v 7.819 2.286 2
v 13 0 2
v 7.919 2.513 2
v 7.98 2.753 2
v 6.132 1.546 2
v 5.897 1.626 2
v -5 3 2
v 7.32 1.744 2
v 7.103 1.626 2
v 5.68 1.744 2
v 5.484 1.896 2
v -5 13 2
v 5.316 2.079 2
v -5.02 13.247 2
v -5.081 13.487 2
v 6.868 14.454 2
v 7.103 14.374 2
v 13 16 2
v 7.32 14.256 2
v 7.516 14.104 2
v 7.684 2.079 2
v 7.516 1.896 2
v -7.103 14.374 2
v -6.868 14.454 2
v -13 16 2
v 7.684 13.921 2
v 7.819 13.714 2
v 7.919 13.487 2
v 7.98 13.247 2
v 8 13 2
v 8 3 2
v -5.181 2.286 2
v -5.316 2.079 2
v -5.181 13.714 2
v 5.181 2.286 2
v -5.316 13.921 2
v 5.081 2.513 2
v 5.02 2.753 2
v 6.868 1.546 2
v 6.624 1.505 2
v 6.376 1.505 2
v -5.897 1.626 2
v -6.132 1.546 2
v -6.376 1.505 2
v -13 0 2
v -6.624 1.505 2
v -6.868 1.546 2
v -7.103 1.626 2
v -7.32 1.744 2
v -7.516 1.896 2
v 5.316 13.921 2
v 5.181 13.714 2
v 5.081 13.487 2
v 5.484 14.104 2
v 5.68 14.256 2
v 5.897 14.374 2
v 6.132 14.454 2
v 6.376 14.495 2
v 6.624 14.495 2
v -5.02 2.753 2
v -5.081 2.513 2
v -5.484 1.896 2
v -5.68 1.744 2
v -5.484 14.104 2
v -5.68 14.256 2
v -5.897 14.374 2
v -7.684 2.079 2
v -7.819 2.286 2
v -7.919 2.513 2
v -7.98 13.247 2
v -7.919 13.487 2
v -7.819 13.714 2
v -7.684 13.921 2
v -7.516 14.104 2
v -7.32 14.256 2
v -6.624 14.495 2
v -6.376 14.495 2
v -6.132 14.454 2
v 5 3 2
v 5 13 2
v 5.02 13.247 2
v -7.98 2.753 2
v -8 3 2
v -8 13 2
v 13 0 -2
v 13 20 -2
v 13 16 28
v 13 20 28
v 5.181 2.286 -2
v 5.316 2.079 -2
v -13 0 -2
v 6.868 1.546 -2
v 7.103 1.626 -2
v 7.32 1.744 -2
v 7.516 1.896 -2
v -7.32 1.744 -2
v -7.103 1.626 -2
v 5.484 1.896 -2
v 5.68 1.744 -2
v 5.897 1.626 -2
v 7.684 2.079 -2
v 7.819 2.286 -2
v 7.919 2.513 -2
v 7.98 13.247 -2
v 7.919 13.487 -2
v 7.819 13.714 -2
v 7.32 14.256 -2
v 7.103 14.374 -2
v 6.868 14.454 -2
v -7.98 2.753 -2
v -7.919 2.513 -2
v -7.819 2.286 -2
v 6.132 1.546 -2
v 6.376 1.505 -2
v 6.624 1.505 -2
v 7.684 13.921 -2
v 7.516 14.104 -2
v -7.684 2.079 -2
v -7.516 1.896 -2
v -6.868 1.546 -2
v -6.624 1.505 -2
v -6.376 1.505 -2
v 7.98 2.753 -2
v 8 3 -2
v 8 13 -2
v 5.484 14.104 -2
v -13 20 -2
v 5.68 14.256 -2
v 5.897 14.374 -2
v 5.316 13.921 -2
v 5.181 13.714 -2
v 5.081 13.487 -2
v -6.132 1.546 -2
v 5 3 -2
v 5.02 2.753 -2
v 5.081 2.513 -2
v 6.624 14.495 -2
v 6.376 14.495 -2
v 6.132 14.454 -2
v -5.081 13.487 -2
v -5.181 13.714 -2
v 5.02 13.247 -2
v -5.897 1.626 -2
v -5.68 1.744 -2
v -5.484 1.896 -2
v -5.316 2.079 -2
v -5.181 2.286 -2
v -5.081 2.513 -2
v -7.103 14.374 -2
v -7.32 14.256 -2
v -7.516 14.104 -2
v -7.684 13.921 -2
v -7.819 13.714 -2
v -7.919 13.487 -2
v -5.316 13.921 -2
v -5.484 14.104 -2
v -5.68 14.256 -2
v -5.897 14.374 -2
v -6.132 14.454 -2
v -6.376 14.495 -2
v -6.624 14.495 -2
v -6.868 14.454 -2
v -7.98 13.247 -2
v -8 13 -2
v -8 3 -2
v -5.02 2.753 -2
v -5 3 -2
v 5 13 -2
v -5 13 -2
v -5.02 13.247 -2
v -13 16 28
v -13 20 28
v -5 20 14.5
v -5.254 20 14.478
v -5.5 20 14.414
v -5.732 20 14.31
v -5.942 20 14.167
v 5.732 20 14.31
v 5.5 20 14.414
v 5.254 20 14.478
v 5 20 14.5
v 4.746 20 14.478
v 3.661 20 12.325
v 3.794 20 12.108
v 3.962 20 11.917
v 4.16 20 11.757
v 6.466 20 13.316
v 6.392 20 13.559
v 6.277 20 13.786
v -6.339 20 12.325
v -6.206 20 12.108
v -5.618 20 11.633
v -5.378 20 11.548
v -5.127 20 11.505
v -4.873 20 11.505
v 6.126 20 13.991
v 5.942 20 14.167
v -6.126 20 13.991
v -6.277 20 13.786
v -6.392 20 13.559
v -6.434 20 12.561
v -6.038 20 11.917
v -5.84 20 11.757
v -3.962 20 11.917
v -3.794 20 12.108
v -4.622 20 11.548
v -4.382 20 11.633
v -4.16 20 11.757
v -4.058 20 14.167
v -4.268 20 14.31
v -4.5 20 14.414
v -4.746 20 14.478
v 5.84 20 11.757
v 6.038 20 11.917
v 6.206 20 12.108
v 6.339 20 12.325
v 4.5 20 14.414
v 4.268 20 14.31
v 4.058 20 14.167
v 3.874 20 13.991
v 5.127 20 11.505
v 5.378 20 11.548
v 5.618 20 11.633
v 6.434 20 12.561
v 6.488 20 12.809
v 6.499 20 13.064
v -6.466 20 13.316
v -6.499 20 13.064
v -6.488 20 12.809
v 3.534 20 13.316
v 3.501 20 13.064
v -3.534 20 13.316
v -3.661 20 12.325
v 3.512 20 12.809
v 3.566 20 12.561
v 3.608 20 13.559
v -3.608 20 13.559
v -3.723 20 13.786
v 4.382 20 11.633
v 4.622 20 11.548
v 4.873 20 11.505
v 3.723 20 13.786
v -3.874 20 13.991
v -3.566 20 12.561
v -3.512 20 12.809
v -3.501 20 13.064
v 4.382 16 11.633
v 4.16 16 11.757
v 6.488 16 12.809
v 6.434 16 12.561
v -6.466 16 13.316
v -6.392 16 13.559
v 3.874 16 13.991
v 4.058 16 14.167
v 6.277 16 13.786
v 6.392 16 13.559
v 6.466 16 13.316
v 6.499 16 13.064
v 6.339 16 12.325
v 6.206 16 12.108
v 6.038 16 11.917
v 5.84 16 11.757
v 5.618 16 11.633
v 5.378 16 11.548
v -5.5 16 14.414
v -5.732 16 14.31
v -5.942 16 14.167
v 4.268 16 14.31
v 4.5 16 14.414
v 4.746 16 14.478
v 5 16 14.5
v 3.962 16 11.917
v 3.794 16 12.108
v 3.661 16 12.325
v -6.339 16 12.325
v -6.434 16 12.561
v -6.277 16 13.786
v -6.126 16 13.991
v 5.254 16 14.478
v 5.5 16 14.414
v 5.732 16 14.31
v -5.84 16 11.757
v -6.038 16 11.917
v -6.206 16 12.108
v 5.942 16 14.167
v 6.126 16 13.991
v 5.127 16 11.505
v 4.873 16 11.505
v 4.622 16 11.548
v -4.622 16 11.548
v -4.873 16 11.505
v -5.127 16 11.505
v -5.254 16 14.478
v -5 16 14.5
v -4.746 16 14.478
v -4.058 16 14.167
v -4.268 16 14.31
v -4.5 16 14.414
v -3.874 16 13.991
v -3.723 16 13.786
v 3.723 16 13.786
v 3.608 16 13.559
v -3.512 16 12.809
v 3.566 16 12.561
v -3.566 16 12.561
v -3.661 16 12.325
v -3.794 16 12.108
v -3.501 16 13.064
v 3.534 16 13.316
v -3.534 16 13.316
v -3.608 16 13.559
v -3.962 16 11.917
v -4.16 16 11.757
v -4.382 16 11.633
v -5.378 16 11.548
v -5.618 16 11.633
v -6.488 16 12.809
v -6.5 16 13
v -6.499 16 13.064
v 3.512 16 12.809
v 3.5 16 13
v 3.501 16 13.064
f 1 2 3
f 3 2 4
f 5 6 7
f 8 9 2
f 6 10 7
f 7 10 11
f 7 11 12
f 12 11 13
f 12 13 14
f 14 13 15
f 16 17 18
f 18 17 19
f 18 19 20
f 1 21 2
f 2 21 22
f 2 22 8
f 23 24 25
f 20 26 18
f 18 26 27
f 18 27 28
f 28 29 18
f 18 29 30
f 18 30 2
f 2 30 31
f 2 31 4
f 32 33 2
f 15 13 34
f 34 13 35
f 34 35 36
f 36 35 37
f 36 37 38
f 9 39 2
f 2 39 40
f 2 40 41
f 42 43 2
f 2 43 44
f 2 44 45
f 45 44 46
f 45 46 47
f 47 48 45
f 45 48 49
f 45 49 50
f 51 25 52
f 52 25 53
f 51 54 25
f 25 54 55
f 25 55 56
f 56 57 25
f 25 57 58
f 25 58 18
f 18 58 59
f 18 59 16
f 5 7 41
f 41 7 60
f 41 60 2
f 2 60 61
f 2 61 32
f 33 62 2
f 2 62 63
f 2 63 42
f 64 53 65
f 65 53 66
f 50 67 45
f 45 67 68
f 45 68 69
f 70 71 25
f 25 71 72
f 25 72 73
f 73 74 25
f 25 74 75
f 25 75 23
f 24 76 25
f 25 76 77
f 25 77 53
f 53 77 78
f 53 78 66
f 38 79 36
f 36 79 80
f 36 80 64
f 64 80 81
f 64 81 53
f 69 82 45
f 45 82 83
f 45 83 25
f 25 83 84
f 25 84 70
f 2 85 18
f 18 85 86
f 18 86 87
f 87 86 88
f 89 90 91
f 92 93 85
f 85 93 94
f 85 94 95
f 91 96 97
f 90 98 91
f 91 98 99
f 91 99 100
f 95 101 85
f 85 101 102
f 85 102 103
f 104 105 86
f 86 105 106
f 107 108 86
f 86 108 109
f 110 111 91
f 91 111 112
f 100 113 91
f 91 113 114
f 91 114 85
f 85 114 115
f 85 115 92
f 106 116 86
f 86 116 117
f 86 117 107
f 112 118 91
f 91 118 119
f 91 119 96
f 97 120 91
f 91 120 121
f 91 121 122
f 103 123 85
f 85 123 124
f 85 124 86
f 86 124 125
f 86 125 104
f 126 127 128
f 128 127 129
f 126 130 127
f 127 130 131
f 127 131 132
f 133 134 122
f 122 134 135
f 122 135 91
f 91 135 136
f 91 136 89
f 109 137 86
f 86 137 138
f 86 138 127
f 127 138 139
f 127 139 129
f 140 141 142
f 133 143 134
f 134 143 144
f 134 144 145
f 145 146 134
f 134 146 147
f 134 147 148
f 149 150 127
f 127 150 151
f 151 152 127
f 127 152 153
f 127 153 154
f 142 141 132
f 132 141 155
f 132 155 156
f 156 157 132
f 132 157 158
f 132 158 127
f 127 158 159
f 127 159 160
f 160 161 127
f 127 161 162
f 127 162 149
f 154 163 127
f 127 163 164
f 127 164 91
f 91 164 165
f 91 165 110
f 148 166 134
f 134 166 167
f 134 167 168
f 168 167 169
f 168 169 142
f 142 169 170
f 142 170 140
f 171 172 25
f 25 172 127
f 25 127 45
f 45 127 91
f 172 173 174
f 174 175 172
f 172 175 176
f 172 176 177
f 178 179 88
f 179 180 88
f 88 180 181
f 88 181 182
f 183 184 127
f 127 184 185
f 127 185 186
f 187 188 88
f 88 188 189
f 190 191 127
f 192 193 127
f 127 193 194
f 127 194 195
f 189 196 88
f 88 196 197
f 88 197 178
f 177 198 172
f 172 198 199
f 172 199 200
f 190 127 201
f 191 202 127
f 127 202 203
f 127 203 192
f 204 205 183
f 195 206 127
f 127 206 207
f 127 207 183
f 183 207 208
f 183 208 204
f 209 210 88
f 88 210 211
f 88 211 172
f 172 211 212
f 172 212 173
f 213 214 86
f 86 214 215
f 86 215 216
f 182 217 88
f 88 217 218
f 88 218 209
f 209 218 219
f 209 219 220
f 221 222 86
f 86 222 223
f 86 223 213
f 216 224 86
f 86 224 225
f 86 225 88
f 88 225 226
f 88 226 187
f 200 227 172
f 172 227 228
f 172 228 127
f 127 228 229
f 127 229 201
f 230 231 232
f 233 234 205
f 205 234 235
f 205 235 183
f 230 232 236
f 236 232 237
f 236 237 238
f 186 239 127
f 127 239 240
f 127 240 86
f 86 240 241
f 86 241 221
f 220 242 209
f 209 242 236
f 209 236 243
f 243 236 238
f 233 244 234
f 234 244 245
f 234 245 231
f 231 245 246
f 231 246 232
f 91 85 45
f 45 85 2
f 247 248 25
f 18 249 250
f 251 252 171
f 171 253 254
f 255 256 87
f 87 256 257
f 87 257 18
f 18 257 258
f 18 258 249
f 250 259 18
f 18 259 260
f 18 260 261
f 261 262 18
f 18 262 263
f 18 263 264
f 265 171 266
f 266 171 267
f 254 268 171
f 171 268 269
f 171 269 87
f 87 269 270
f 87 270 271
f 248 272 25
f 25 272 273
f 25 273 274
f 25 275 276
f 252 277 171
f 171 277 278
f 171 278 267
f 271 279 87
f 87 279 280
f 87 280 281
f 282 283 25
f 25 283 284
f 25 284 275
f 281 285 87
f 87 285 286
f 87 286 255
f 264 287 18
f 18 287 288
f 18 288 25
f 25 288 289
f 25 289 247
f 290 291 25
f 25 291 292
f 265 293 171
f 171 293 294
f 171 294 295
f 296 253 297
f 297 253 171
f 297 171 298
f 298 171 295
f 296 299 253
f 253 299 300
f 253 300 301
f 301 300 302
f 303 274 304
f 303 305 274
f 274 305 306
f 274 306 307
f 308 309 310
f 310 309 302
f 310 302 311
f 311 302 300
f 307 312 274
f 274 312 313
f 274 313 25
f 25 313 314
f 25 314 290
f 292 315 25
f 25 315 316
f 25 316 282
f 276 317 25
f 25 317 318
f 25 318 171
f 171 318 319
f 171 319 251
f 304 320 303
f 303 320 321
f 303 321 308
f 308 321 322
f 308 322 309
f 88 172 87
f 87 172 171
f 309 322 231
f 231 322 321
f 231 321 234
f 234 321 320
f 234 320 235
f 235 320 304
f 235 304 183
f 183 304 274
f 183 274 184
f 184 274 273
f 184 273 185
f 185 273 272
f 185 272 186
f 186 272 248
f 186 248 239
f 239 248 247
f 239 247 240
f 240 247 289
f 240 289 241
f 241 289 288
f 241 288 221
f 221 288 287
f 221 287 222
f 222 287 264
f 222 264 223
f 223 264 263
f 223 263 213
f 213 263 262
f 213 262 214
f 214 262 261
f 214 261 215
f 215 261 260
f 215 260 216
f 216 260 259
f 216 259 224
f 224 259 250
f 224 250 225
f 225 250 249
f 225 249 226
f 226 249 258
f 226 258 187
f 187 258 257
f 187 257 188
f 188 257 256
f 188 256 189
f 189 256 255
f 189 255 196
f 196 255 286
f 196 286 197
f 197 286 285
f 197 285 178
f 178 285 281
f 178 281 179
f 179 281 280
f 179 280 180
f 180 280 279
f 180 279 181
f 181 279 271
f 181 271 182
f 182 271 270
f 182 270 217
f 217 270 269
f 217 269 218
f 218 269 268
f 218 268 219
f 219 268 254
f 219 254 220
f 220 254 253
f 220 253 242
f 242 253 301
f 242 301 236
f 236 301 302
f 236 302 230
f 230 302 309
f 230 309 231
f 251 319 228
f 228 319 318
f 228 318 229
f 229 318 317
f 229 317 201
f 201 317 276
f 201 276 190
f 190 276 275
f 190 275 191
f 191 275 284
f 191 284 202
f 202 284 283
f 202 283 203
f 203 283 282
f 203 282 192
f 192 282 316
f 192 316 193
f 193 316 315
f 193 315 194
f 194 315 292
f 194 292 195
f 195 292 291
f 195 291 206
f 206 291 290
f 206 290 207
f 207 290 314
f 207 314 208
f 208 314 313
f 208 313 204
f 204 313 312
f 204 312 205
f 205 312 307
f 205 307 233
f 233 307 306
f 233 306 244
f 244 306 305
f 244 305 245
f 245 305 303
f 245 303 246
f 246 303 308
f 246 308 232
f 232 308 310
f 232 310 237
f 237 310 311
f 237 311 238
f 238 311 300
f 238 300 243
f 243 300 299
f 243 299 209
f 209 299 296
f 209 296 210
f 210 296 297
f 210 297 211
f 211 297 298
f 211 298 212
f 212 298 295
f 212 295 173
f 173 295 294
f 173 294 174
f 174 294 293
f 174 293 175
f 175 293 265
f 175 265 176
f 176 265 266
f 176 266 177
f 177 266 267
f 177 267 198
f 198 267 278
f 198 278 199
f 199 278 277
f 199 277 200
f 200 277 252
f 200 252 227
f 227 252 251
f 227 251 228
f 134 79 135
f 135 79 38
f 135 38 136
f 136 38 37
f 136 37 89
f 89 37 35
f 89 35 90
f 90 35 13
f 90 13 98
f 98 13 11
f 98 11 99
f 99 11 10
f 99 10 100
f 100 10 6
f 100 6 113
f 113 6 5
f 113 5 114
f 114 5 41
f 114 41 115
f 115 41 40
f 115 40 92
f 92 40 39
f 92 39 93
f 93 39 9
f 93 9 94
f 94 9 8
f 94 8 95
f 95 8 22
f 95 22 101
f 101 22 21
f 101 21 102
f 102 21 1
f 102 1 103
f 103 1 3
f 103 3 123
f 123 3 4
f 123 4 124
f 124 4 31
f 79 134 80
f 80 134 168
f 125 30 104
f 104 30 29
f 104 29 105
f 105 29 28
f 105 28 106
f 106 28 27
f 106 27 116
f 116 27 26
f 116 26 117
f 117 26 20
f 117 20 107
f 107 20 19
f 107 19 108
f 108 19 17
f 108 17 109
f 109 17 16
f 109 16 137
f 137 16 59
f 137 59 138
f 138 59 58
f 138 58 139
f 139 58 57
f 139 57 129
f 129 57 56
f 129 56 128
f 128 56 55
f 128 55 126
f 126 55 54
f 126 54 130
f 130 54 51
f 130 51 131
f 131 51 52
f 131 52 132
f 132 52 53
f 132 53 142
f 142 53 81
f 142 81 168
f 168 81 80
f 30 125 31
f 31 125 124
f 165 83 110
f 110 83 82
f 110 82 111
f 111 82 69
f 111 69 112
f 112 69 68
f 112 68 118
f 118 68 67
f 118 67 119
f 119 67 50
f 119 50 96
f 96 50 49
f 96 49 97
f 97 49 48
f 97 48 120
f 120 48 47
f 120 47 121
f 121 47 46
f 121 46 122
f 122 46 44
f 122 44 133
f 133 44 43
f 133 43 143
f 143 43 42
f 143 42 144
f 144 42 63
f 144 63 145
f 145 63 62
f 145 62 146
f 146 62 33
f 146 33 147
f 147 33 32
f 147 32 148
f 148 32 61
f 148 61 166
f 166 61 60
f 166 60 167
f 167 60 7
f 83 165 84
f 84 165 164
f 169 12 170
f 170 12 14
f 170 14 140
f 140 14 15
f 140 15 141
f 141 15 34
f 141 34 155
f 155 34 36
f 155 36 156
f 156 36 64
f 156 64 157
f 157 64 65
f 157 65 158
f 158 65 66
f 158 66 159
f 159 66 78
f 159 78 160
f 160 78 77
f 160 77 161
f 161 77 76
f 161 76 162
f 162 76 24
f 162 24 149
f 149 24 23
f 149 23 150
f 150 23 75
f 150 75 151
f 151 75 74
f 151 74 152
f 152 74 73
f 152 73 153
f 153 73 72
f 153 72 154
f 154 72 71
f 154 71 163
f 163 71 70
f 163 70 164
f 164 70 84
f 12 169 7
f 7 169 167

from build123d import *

# Parameters (mm, degrees)
CROQUIS1_W              = 26
CROQUIS1_H              = 4
SALIENTE_EXTRUIR1_DEPTH = 20
CROQUIS2_W              = 26
CROQUIS2_H              = 4
SALIENTE_EXTRUIR2_DEPTH = 26
CROQUIS3_R              = 1.5
CORTAR_EXTRUIR1_DEPTH   = 25
CORTAR_EXTRUIR2_DEPTH   = 25


with BuildPart() as part:
    # Croquis1 → Saliente-Extruir1 (new body)
    with BuildSketch(Plane(origin=(0, 0, 0), x_dir=(1, 0, 0), z_dir=(0, 1, 0))):
        Rectangle(CROQUIS1_W, CROQUIS1_H)
    extrude(amount=SALIENTE_EXTRUIR1_DEPTH)

    # Croquis2 → Saliente-Extruir2 (add)
    with BuildSketch(Plane.XY.offset(2)):
        with Locations((0, 18)):
            Rectangle(CROQUIS2_W, CROQUIS2_H)
    extrude(amount=SALIENTE_EXTRUIR2_DEPTH)

    # Croquis3 → Cortar-Extruir1 (cut)
    with BuildSketch(Plane(origin=(0, 20, 0), x_dir=(1, 0, 0), z_dir=(0, 1, 0))):
        with Locations((-5, -13)):
            Circle(CROQUIS3_R)
        with Locations((5, -13)):
            Circle(CROQUIS3_R)
    extrude(amount=-CORTAR_EXTRUIR1_DEPTH, mode=Mode.SUBTRACT)

    # Croquis4 → Cortar-Extruir2 (cut)
    with BuildSketch(Plane.XY.offset(2)):
        with BuildLine():
            Line((-8, 13), (-8, 3))
            ThreePointArc((-8, 3), (-6.5, 1.5), (-5, 3))
            Line((-5, 3), (-5, 13))
            ThreePointArc((-5, 13), (-6.5, 14.5), (-8, 13))
        make_face()
        with BuildLine():
            Line((5, 13), (5, 3))
            ThreePointArc((5, 3), (6.5, 1.5), (8, 3))
            Line((8, 3), (8, 13))
            ThreePointArc((8, 13), (6.5, 14.5), (5, 13))
        make_face()
    extrude(amount=-CORTAR_EXTRUIR2_DEPTH, mode=Mode.SUBTRACT)


solid = part.part
